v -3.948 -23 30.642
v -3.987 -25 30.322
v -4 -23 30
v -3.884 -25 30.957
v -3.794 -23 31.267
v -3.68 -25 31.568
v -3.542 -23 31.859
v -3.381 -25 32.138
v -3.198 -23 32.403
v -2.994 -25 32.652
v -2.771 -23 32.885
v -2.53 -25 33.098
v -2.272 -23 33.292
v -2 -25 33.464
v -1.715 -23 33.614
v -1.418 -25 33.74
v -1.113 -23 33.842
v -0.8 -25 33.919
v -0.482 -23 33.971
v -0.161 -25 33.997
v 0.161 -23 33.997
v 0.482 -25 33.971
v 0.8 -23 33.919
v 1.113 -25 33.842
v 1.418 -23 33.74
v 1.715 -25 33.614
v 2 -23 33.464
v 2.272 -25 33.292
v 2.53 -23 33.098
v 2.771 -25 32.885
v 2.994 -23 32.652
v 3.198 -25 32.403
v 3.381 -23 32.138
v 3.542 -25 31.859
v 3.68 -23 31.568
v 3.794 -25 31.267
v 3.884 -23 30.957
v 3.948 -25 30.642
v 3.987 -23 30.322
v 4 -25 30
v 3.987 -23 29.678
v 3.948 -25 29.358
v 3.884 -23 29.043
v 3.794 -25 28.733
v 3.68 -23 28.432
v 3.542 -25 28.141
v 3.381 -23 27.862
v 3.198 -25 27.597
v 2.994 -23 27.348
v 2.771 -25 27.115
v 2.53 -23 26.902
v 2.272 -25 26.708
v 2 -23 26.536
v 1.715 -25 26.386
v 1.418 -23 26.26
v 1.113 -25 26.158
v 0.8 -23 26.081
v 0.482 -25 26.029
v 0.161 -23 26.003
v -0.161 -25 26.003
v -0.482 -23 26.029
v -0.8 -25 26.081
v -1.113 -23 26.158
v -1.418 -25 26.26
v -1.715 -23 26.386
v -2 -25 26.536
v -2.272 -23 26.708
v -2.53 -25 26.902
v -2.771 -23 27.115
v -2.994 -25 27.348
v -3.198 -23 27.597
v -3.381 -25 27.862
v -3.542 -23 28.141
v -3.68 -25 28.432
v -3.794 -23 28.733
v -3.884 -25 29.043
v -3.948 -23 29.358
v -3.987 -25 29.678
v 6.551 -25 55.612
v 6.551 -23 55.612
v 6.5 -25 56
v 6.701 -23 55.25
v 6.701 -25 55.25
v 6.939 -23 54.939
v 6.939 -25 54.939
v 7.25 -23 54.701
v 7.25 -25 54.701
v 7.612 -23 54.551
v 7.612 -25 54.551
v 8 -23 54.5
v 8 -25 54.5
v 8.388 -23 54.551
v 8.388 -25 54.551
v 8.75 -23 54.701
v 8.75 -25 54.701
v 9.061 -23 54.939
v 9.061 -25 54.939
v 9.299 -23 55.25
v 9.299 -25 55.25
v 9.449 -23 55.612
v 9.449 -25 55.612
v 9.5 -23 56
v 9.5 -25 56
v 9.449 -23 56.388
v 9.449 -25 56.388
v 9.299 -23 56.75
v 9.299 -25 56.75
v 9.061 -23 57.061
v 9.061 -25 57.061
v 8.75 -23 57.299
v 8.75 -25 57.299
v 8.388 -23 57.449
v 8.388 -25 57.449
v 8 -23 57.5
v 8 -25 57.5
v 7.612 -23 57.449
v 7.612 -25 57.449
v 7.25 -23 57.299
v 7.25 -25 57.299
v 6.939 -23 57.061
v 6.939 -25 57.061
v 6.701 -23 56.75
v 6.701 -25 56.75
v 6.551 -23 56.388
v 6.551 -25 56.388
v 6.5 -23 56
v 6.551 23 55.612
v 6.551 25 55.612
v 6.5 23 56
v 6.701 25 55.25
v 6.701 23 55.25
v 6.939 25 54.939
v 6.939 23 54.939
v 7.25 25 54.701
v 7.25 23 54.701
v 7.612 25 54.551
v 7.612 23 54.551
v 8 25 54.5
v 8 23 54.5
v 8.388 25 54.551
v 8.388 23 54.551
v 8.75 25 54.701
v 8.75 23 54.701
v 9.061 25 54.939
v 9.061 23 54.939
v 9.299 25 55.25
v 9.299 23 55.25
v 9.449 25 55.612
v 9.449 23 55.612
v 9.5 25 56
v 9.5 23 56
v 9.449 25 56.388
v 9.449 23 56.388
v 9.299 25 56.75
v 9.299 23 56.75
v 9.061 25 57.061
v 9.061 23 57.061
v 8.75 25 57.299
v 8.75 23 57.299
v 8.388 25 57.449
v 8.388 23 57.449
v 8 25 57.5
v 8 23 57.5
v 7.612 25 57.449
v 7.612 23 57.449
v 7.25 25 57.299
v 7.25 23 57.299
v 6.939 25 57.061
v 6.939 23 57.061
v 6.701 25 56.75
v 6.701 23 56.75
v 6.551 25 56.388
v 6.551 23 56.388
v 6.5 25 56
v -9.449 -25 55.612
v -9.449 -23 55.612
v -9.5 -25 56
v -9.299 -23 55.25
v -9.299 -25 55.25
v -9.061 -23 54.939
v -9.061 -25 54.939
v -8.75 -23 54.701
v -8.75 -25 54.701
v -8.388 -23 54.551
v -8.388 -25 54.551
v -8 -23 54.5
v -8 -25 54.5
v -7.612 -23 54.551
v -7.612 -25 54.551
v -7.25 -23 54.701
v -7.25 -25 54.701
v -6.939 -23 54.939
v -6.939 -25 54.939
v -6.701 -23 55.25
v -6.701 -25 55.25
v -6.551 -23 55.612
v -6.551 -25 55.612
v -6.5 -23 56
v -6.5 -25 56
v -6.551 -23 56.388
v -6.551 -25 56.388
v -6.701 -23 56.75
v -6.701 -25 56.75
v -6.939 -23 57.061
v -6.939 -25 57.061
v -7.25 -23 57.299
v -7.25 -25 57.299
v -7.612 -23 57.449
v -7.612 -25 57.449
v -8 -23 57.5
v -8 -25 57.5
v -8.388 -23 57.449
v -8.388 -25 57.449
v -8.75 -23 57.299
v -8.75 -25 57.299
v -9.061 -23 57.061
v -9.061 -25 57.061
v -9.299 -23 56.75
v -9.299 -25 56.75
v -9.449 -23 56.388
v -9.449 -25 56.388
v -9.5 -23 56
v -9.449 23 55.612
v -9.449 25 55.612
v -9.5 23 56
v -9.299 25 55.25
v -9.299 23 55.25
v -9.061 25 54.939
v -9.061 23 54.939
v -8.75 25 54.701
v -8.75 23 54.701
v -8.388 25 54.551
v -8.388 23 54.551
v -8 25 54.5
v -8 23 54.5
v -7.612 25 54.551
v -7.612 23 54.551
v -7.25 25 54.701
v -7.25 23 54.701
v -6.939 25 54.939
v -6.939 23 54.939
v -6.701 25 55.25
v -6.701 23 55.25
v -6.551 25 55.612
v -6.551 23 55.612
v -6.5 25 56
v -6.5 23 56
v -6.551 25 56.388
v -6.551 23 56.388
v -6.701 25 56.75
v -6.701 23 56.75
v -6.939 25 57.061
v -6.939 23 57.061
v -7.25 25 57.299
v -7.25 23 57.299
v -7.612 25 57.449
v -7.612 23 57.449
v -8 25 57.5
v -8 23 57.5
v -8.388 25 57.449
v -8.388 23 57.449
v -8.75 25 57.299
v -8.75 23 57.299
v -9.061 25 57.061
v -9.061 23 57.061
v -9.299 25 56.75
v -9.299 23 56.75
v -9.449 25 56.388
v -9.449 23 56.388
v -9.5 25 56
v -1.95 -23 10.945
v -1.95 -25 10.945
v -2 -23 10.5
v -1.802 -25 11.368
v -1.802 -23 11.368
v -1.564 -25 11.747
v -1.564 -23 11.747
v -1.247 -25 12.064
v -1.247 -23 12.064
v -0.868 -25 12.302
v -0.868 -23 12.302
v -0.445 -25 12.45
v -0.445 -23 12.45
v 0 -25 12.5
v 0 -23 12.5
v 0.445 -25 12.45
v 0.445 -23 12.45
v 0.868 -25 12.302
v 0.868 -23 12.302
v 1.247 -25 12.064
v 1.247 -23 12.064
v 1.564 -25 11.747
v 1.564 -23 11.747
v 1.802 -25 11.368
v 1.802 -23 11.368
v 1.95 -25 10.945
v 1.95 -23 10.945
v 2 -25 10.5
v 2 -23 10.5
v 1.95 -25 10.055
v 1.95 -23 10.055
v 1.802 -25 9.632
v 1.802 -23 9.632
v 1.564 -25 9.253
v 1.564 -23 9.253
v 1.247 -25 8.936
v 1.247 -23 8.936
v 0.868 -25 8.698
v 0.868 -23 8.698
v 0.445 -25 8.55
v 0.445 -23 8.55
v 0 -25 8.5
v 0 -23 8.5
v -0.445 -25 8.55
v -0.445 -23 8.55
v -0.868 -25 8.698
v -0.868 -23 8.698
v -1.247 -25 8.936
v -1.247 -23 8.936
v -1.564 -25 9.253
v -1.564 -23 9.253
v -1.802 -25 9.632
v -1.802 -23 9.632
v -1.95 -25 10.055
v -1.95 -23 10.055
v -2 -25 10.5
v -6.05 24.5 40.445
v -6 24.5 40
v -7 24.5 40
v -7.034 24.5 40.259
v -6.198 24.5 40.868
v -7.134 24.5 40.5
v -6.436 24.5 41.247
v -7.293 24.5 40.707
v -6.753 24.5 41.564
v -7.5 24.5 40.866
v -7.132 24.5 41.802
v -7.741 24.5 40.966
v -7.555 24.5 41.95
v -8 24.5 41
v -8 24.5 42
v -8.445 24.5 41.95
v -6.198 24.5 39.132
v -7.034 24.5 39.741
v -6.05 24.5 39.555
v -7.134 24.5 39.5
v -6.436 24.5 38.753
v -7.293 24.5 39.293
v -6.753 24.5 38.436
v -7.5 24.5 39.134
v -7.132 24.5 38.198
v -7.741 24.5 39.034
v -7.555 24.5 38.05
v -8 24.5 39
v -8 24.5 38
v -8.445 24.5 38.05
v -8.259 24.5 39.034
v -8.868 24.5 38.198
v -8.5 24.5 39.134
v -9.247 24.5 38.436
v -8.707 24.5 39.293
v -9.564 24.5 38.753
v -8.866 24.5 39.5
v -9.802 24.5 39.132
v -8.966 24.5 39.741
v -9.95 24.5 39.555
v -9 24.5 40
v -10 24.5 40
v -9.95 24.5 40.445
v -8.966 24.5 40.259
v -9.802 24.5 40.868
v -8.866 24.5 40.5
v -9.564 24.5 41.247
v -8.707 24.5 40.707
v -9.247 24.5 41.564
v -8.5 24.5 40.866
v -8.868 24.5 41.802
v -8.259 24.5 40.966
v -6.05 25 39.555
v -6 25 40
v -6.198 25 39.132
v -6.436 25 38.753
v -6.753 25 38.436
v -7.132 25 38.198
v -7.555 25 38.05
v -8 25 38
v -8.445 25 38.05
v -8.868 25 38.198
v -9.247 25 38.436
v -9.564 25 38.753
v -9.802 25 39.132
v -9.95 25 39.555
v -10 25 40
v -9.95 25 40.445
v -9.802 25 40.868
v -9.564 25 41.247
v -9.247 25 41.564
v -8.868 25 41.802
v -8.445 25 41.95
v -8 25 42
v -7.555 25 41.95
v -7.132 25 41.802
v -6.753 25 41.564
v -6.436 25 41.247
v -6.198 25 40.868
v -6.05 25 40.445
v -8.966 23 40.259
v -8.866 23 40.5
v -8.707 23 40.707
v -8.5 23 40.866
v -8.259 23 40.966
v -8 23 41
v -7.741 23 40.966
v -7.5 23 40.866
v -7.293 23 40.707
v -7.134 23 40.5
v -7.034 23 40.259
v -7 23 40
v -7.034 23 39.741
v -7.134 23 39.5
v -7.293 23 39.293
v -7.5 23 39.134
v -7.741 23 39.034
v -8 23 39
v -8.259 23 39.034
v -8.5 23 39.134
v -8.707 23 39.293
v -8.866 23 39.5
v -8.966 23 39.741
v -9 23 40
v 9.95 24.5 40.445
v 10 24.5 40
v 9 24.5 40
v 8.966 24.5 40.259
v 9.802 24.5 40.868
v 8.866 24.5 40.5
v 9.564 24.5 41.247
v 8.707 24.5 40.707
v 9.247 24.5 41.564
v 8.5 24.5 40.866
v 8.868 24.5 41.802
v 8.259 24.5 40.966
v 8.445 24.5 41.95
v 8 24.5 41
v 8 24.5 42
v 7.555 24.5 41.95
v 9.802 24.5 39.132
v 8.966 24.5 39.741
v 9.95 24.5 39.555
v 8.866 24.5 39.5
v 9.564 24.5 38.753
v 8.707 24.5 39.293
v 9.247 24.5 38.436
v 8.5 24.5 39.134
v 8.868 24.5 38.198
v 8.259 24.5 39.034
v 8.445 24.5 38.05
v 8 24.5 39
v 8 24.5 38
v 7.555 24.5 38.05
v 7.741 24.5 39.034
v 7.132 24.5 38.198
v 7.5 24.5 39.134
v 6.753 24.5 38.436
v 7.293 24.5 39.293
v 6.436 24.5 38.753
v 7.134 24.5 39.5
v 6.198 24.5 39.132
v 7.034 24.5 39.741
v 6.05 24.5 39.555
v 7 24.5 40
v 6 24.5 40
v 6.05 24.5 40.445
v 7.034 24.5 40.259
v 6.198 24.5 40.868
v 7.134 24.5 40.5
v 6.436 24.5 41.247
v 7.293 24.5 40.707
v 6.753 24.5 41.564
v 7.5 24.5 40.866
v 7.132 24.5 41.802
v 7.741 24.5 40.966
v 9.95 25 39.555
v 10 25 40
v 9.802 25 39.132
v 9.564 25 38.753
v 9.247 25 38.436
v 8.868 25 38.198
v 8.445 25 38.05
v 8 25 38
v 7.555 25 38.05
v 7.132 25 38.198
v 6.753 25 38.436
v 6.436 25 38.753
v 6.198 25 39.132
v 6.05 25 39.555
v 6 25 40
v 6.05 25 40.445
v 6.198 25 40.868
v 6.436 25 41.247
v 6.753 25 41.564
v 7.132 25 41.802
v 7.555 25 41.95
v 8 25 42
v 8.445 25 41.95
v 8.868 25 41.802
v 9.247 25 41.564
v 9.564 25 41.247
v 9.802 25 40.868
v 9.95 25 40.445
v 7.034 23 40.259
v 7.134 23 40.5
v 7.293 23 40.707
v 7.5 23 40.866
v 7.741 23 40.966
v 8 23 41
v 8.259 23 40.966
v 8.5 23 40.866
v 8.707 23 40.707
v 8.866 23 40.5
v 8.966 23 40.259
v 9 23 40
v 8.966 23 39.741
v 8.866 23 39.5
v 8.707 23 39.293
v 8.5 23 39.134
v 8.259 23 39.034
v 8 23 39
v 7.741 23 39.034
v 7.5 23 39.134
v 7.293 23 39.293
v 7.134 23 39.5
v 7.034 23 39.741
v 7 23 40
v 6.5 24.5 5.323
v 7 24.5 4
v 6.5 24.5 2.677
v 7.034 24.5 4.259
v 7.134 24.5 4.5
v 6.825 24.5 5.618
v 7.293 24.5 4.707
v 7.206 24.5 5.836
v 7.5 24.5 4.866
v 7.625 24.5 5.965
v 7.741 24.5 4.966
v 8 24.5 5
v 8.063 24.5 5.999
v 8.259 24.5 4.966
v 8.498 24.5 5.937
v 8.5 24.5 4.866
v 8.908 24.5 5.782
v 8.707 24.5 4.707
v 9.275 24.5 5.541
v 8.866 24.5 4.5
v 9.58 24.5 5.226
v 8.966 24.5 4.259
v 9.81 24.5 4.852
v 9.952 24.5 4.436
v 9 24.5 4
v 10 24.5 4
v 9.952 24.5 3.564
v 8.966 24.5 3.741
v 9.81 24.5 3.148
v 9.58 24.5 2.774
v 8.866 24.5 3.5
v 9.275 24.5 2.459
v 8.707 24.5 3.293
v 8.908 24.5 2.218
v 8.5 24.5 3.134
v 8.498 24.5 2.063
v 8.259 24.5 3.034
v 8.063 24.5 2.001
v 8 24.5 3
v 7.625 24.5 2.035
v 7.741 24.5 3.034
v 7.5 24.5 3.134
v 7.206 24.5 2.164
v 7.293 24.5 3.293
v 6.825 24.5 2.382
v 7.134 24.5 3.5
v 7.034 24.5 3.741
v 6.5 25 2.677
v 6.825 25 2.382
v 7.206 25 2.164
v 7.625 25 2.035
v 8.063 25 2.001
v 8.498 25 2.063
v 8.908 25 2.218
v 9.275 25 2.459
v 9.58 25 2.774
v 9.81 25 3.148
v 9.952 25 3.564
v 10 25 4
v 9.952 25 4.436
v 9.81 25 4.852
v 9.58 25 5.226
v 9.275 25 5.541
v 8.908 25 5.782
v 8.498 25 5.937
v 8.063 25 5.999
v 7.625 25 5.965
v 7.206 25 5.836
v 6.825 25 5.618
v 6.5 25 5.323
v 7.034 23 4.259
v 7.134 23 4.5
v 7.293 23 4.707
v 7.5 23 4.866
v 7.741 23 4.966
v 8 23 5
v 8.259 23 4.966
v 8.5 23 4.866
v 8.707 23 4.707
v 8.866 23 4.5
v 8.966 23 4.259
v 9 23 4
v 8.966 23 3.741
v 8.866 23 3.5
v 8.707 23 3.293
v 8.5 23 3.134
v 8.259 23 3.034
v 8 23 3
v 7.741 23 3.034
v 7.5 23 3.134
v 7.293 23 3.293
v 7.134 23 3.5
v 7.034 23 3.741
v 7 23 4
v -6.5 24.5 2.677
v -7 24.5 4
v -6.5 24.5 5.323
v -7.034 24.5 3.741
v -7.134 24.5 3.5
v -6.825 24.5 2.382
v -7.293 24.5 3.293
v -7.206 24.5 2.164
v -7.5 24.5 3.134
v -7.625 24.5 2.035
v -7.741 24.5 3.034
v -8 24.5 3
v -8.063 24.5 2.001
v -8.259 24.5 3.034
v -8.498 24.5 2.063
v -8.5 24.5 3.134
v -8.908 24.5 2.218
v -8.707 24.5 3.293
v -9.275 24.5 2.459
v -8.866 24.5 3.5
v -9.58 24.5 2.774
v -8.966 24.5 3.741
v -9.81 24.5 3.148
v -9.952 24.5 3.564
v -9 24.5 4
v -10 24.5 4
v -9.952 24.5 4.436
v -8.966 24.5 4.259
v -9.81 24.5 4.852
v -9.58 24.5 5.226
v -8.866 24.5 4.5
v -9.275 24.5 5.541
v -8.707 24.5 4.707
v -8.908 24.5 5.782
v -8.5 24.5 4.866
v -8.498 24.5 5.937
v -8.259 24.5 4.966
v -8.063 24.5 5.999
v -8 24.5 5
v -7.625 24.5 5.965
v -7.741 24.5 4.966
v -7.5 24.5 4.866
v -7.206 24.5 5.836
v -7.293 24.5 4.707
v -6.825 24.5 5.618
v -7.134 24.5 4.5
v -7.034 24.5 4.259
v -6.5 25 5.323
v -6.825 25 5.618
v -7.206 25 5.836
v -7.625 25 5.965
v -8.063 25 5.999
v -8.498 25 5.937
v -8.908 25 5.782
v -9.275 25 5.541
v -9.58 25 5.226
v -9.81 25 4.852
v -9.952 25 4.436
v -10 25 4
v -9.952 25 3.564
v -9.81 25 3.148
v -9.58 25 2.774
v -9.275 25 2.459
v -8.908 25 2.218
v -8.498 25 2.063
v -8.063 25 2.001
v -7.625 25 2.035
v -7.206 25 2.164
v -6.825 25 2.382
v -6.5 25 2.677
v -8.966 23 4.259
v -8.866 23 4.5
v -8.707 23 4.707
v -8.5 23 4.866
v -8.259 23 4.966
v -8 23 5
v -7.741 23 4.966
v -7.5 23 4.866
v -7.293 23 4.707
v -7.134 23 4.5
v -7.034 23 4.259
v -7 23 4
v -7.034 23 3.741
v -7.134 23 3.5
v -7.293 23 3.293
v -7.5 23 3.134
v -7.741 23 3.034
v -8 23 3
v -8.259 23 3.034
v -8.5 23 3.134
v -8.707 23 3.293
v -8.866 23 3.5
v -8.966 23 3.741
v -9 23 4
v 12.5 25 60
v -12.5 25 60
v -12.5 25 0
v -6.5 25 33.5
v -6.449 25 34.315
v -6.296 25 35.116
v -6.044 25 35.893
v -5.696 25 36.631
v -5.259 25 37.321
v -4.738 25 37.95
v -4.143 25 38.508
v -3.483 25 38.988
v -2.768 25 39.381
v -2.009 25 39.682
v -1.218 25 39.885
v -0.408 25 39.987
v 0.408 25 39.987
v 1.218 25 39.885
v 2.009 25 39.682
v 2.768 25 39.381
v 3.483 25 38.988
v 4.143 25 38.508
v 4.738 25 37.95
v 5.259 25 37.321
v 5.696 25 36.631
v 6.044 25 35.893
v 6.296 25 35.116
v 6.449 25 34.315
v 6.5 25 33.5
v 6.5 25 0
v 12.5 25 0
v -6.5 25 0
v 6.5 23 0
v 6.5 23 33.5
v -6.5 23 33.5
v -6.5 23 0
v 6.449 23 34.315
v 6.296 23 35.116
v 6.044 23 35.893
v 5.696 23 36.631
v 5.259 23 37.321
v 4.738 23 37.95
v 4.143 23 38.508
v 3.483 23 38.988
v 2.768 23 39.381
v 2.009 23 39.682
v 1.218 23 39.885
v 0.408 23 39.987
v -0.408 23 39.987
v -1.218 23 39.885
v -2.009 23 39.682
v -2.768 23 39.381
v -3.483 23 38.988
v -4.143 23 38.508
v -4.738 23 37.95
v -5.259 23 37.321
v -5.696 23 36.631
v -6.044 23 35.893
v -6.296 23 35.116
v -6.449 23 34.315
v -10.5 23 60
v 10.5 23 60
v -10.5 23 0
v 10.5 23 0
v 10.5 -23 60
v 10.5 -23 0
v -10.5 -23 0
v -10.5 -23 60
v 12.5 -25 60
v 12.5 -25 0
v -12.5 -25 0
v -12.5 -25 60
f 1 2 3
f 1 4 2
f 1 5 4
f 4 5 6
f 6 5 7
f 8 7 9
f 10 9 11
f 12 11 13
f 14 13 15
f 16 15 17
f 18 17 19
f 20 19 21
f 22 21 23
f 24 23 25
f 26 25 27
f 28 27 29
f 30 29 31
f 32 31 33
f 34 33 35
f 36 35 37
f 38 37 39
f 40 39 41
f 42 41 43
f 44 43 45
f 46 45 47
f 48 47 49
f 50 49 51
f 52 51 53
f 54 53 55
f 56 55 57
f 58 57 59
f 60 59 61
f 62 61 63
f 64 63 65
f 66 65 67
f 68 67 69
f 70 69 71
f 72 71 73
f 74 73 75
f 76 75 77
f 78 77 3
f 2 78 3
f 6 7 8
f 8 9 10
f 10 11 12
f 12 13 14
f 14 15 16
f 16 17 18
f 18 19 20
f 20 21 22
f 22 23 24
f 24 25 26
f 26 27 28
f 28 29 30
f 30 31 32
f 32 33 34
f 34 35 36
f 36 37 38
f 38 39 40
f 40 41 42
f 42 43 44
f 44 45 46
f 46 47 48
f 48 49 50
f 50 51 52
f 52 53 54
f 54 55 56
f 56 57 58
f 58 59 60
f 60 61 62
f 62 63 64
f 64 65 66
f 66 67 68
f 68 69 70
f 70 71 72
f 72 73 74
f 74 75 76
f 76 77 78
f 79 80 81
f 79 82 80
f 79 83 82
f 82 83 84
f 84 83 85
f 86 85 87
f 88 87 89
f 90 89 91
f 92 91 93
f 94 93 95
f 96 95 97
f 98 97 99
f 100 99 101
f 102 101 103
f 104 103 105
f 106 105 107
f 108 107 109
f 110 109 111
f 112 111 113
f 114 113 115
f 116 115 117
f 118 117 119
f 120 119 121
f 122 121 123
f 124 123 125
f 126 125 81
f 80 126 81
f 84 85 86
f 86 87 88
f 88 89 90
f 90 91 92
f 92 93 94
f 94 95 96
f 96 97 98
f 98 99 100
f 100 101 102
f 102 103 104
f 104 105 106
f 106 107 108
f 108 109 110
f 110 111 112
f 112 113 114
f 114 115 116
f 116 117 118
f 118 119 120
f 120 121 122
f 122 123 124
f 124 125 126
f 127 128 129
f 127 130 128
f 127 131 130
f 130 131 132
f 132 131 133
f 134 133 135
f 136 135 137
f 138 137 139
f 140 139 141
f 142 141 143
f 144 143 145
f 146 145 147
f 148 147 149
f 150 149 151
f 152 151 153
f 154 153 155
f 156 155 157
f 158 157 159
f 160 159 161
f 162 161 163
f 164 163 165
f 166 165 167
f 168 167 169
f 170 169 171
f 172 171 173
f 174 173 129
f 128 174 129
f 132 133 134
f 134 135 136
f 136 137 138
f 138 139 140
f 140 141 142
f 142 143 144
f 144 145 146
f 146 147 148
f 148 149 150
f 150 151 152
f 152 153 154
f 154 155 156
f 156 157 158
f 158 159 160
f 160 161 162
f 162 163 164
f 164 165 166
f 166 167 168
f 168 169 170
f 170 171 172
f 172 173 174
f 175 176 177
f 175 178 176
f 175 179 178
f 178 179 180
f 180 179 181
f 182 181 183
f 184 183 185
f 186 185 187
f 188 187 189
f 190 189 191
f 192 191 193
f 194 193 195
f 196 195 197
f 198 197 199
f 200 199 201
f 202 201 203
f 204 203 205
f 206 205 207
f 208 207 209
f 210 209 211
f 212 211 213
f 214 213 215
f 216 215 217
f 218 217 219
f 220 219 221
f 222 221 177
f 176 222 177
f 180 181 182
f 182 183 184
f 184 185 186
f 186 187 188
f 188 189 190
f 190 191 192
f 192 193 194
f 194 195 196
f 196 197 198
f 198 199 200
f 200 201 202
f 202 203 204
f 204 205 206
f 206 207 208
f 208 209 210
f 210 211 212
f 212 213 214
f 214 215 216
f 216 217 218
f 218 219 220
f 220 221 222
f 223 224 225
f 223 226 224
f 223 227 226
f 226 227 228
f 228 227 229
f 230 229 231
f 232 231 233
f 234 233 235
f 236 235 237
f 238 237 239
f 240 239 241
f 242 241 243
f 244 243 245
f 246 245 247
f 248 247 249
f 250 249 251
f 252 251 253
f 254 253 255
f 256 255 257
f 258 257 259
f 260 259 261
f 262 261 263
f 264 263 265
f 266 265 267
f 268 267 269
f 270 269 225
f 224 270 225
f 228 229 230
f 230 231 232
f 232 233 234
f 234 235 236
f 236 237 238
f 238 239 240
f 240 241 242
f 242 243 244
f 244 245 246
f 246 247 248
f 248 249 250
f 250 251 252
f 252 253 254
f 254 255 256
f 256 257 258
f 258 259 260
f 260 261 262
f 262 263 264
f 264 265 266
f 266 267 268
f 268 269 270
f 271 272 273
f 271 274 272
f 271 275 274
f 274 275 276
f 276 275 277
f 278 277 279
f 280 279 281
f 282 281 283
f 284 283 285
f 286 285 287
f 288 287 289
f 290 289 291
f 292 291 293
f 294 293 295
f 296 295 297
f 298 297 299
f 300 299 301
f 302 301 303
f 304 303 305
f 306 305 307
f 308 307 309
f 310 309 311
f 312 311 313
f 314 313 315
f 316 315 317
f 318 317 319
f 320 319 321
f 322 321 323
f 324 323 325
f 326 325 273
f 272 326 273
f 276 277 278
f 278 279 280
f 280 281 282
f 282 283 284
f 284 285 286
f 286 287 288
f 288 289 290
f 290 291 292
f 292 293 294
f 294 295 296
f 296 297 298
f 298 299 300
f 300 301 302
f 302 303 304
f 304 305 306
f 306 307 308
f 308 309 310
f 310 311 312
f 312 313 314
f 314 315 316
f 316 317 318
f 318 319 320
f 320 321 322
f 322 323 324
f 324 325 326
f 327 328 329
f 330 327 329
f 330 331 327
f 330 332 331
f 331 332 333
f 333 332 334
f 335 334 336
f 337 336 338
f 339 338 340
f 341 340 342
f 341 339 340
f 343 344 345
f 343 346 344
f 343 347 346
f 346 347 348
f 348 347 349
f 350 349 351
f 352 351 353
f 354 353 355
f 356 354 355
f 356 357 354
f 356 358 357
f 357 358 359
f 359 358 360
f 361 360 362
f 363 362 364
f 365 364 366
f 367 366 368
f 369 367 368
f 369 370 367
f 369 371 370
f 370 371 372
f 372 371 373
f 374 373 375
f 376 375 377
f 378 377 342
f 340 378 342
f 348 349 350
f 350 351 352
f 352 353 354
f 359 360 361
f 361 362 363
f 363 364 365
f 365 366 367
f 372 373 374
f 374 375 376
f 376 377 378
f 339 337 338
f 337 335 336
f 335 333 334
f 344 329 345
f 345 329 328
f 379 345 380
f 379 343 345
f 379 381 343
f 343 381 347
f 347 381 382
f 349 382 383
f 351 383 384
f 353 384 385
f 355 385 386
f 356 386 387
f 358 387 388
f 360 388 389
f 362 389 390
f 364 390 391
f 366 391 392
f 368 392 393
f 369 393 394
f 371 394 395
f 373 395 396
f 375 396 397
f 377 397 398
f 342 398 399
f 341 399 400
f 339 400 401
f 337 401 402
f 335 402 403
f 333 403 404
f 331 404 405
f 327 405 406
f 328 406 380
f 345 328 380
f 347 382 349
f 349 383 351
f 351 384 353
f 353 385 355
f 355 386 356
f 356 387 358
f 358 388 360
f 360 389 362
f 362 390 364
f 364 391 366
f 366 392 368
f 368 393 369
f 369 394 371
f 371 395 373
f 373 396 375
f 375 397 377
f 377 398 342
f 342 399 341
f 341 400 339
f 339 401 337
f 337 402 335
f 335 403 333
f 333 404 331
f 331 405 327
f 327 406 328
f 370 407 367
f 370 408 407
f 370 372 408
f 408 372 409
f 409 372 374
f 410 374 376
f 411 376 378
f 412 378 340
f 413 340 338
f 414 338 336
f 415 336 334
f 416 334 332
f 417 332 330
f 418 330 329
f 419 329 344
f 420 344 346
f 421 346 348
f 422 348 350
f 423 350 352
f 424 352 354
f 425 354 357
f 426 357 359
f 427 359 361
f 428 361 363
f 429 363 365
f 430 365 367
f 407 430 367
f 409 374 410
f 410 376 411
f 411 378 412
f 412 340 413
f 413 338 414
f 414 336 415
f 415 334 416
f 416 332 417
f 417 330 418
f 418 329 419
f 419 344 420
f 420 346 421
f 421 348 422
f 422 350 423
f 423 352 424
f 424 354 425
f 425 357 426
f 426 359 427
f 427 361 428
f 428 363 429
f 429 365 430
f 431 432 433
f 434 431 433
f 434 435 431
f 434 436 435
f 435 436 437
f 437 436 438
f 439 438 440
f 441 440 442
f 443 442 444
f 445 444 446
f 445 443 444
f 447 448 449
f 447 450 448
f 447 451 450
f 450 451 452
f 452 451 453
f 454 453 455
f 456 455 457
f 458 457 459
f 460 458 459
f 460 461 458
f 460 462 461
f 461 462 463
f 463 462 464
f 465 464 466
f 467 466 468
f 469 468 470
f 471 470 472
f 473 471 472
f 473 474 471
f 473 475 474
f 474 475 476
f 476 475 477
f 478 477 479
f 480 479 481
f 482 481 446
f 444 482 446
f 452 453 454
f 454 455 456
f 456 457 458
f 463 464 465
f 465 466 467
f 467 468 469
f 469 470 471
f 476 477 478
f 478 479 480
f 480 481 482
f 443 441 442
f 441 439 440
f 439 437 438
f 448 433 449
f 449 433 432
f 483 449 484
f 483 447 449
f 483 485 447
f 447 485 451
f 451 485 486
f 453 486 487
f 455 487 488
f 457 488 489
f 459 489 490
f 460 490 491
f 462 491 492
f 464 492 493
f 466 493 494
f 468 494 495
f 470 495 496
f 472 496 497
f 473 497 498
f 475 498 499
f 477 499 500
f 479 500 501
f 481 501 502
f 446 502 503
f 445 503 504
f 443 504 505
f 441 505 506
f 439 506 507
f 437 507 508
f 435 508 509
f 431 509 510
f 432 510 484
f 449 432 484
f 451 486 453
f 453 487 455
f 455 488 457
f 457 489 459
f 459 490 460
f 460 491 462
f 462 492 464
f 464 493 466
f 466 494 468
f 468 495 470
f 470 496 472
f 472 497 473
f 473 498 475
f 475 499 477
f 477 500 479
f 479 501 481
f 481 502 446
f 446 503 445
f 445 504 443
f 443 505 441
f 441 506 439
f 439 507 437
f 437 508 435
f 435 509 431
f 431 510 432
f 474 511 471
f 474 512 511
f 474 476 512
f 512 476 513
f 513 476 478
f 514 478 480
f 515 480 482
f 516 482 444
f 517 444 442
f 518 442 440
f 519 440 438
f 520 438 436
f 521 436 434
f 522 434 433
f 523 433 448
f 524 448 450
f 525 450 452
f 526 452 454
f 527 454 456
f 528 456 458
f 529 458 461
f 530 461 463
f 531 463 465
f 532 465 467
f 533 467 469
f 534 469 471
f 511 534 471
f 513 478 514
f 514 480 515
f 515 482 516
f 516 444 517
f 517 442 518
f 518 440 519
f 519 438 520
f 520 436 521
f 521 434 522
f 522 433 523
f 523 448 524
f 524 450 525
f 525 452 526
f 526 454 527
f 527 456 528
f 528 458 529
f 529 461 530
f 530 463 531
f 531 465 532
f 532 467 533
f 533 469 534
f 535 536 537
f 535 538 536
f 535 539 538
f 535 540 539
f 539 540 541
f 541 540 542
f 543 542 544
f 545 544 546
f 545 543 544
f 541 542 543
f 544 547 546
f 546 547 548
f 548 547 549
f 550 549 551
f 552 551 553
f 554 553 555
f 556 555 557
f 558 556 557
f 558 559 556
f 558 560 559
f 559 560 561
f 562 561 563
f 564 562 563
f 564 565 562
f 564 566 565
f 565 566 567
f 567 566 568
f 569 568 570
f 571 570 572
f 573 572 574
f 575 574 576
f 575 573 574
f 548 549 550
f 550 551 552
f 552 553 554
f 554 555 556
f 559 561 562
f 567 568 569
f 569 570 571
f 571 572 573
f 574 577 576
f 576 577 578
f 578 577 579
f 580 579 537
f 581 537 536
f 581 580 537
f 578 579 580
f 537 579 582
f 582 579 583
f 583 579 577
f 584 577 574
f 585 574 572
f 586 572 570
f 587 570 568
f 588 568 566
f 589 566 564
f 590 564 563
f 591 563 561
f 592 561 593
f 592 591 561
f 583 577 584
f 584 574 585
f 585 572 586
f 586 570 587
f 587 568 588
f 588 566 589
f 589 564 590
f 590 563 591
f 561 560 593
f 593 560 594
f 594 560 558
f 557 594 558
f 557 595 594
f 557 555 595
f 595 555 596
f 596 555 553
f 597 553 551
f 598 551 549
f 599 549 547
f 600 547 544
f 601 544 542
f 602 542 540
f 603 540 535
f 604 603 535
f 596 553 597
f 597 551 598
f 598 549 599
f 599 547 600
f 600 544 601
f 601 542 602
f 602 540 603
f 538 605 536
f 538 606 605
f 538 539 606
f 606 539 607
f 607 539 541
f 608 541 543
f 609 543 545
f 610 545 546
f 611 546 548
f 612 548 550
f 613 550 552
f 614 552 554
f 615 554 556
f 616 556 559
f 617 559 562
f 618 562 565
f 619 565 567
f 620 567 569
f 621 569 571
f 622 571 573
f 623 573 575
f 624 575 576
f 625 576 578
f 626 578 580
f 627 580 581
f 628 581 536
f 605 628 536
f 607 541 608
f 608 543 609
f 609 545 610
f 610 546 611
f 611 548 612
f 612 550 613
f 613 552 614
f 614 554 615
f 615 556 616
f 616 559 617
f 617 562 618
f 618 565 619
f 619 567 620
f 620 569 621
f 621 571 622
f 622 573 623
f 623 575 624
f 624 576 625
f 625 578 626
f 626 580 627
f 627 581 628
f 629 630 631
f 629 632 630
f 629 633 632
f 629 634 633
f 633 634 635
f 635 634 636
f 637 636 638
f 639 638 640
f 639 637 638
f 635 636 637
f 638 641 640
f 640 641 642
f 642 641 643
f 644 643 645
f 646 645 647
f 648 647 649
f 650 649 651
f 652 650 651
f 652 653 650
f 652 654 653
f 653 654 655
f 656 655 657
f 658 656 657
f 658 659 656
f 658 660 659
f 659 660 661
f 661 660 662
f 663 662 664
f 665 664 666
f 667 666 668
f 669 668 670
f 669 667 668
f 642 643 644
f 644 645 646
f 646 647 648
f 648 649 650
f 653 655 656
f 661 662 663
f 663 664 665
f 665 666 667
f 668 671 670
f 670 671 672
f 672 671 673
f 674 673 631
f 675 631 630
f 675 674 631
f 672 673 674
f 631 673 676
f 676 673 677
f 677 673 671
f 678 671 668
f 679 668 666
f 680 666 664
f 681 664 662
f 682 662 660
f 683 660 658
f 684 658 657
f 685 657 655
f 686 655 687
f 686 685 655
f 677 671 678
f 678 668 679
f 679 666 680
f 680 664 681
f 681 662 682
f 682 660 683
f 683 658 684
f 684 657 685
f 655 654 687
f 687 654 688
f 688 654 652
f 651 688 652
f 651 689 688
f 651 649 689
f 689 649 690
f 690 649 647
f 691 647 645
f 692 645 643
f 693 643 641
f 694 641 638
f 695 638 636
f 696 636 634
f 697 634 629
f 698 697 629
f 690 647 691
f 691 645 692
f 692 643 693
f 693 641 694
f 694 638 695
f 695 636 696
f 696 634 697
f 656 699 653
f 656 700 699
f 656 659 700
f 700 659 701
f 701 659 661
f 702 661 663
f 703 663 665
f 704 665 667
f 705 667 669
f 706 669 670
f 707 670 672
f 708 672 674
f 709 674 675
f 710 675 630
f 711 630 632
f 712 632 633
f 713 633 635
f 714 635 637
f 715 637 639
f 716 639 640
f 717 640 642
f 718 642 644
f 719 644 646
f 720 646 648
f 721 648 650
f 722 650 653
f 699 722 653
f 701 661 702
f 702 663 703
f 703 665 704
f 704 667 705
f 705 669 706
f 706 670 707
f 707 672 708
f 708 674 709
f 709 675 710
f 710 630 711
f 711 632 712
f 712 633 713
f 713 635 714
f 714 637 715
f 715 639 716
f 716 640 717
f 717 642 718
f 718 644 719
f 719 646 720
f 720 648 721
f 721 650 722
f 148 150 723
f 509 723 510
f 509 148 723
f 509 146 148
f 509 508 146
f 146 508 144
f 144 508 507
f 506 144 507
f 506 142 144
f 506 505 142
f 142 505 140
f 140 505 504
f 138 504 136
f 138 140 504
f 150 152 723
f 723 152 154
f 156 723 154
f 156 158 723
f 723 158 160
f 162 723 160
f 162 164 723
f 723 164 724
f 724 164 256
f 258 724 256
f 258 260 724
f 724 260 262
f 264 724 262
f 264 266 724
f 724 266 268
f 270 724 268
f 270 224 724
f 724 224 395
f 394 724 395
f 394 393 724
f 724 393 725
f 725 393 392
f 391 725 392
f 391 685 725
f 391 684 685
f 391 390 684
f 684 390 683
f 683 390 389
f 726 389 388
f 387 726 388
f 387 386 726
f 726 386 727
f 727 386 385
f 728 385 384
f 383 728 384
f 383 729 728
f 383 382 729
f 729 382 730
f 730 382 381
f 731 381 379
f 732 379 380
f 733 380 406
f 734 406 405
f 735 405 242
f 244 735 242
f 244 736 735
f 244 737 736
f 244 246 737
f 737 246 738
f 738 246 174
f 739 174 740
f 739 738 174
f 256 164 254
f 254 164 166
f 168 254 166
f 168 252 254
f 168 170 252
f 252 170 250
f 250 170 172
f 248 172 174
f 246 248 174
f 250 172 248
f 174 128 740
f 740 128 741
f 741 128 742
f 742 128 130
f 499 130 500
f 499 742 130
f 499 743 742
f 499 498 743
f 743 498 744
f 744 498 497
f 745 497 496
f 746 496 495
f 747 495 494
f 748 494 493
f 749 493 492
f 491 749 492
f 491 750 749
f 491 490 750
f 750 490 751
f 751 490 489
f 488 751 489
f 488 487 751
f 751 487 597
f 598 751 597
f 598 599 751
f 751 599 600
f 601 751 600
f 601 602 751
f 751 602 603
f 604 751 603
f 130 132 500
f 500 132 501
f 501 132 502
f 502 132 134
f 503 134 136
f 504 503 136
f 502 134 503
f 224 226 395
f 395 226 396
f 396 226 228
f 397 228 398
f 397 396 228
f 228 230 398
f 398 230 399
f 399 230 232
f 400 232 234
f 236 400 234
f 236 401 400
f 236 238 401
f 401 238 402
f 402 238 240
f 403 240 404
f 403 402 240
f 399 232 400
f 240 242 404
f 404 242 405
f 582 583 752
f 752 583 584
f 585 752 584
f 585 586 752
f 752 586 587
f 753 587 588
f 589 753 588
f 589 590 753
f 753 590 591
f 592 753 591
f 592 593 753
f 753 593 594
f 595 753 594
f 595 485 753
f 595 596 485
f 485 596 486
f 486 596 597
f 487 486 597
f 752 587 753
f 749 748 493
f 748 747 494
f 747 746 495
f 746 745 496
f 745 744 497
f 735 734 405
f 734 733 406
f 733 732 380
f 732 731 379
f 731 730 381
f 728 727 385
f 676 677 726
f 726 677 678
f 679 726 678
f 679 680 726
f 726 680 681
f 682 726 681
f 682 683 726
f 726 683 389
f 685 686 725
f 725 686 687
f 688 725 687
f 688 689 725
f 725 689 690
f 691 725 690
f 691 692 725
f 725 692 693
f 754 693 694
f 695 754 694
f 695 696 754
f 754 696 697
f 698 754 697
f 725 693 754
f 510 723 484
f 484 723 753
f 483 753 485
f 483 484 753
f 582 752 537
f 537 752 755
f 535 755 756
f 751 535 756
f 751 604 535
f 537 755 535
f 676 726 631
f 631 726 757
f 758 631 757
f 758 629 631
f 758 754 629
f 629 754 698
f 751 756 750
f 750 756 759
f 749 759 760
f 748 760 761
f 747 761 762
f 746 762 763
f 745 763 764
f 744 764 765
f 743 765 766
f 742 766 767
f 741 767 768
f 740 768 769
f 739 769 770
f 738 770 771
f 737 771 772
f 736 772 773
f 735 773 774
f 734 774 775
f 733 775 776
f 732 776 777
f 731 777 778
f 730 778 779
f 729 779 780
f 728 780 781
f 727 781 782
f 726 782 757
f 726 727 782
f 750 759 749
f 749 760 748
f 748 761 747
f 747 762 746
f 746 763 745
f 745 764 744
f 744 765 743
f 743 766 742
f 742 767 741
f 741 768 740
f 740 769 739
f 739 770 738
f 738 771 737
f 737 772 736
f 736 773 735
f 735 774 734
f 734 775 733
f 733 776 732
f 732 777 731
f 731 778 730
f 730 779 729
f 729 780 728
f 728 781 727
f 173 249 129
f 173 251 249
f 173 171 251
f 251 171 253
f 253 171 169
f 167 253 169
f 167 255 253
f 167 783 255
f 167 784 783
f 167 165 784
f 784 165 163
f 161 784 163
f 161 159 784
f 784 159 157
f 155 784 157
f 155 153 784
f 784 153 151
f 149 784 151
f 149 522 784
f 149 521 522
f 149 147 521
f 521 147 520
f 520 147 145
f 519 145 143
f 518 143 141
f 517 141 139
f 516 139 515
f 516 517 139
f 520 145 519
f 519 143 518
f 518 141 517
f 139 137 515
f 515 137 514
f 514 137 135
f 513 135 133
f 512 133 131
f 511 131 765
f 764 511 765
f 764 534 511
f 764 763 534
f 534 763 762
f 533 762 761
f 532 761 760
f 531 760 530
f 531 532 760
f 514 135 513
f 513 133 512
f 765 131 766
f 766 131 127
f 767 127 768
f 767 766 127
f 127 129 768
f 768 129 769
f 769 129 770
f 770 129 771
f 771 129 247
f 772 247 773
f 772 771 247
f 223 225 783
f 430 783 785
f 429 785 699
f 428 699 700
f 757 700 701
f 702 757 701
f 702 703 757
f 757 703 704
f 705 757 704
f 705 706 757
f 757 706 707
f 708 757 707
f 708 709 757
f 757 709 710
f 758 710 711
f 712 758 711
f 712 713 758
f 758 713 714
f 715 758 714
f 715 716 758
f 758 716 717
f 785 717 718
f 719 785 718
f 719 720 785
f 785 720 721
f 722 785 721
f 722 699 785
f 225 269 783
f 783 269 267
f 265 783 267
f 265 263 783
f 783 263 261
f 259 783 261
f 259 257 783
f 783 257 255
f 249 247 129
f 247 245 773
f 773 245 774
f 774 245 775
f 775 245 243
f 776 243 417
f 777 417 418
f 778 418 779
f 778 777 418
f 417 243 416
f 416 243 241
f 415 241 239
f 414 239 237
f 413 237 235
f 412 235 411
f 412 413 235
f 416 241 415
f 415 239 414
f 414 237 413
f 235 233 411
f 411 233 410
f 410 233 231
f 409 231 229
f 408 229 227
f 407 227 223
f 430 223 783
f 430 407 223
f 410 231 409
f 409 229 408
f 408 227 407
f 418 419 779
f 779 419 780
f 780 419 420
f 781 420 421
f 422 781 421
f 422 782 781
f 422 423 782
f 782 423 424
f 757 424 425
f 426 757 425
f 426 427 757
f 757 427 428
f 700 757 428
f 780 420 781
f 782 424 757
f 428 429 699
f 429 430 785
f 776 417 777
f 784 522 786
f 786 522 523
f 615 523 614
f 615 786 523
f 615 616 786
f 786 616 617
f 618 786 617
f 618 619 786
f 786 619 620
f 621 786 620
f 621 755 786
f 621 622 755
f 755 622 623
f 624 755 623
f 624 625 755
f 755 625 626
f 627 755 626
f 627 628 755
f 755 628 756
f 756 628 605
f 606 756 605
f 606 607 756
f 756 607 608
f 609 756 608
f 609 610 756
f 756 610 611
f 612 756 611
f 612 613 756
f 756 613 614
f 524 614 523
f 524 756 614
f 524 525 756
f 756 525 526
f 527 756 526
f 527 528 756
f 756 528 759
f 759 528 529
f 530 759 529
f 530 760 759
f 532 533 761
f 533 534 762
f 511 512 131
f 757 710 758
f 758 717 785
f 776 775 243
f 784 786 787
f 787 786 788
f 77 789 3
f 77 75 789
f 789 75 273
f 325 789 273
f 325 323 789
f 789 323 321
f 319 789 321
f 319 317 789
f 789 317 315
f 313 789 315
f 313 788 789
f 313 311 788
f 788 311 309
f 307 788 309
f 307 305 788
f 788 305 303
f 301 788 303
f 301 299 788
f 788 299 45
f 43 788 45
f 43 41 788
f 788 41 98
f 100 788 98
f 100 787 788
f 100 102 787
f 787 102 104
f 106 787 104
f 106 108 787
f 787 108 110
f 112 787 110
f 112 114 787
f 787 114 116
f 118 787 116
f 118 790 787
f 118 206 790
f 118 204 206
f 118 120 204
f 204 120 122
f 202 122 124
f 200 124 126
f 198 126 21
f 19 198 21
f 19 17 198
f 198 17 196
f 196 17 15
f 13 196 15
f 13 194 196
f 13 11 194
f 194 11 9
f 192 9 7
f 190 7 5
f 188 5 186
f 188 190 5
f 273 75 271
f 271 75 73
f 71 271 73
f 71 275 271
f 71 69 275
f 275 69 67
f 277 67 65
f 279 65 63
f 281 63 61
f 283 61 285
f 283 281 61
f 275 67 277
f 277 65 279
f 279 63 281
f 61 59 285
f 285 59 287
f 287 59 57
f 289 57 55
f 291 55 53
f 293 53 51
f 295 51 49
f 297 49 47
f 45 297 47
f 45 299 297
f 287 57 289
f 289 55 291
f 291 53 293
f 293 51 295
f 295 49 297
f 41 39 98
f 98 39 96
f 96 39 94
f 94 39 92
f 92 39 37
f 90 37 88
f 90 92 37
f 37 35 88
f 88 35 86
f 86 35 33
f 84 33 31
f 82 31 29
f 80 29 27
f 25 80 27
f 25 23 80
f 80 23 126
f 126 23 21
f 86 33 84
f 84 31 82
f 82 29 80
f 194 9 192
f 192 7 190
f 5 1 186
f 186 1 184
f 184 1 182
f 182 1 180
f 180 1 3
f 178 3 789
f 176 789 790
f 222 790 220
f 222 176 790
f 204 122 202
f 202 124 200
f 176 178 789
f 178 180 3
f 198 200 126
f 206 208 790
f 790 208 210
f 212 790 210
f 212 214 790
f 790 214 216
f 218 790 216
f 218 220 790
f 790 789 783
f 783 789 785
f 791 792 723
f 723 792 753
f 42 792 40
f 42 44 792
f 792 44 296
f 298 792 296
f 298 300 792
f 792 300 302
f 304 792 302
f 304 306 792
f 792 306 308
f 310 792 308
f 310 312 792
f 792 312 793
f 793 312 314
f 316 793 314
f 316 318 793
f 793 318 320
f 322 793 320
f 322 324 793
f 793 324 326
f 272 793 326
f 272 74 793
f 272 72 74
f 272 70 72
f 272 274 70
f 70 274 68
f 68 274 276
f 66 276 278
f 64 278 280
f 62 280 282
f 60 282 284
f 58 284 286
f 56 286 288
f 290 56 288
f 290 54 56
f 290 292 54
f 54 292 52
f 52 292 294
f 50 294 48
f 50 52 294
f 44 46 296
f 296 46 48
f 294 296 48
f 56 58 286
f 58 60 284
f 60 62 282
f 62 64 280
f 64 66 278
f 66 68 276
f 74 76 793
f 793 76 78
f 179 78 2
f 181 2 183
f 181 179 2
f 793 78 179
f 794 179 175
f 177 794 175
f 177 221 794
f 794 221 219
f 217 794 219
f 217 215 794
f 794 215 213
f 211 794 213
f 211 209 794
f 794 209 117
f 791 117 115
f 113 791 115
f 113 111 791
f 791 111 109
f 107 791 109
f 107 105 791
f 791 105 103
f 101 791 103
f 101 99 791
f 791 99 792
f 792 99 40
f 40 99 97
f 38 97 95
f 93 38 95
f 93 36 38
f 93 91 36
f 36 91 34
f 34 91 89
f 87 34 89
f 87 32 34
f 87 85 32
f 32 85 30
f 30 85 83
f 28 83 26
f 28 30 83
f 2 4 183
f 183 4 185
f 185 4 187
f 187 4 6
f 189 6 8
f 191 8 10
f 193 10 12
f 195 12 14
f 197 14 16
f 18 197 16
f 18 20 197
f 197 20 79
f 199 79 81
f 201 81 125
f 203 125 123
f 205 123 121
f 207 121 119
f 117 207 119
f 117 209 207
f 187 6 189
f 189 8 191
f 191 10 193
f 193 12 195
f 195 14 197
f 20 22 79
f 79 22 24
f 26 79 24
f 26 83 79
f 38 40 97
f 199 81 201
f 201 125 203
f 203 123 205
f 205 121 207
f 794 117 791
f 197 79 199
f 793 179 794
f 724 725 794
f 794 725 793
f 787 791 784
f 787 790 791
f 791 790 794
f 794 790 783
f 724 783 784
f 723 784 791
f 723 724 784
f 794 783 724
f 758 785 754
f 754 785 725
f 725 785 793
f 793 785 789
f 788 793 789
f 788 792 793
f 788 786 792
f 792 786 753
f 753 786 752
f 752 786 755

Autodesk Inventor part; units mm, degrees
ref_plane "YZ Plane" through (0, 0, 0) normal (1, 0, 0) x (0, 1, 0)
ref_plane "XZ Plane" through (0, 0, 0) normal (0, 1, 0) x (-1, 0, 0)
ref_plane "XY Plane" through (0, 0, 0) normal (0, 0, 1) x (1, 0, 0)
sketch "スケッチ1" plane through (0, 0, 0) normal (0, 0, 1) x (1, 0, 0)
  line L0 (-12.5, 25) -> (12.5, 25)
  line L1 (12.5, 25) -> (12.5, -25)
  line L2 (12.5, -25) -> (-12.5, -25)
  line L3 (-12.5, -25) -> (-12.5, 25)
  line L4 (-10.5, 23) -> (10.5, 23)
  line L5 (10.5, 23) -> (10.5, -23)
  line L6 (10.5, -23) -> (-10.5, -23)
  line L7 (-10.5, -23) -> (-10.5, 23)
  point P0 (0, 0)
  dimension "d0" = 25
  dimension "d1" = 50
  dimension "d2" = 46
  dimension "d3" = 21
  dimension "d4" = 25
  dimension "d5" = 23
  dimension "d6" = 10.5
  dimension "d7" = 12.5
extrude "押し出し1" add sketch "スケッチ1" along normal blind 60
sketch "スケッチ2" plane through (-12.5, 25, 0) normal (0, 1, 0) x (1, 0, 0)
  line L0 (0, 0) -> (25, 0) projected
  line L1 (0, 0) -> (0, -60) projected
  arc A0 (6, -33.5) -> (19, -33.5) centre (12.5, -33.5) ccw
  line L2 (6, -33.5) -> (6, 0)
  line L3 (19, -33.5) -> (19, 0)
  point P0 (12.5, 0)
  dimension "d10" = 13
  dimension "d11" = 33.5
  dimension "d12" = 12.5
extrude "押し出し2" cut sketch "スケッチ2" against normal blind 2
sketch "スケッチ3" plane through (-12.5, 25, 60) normal (0, 1, 0) x (1, 0, 0)
  arc A0 (6, 26.5) -> (19, 26.5) centre (12.5, 26.5) ccw projected
  circle A1 centre (4.5, 20) radius 1
  circle A2 centre (4.5, 56) radius 1
  circle A3 centre (20.5, 56) radius 1
  circle A4 centre (20.5, 20) radius 1
  point P0 (12.5, 60)
  dimension "d15" = 6.5
  dimension "d16" = 6.5
  dimension "d17" = 2
  dimension "d18" = 8
  dimension "d19" = 8
  dimension "d20" = 8
  dimension "d21" = 8
  dimension "d22" = 29.5
  dimension "d23" = 29.5
hole "穴1" at (-8, 25, 4) at (8, 25, 4) at (8, 25, 40) at (-8, 25, 40) direction (0, -1, 0) diameter 2 depth 2 tip angle 118 counterbore diameter 4 counterbore depth 0.5
sketch "スケッチ4" plane through (-12.5, -25, 0) normal (0, -1, 0) x (1, 0, 0)
  line L0 (25, 0) -> (0, 0) projected
  line L1 (25, 0) -> (25, 60) projected
  circle A0 centre (12.5, 10.5) radius 2
  point P0 (12.5, 0)
  dimension "d31" = 4
  dimension "d32" = 12.5
  dimension "d33" = 10.5
hole "穴2" at (0, -25, 10.5) direction (0, 1, 0) diameter 4 end through all
sketch "スケッチ5" plane through (-12.5, 25, 60) normal (0, 1, 0) x (1, 0, 0)
  line L0 (0, 0) -> (25, 0) projected
  arc A0 (6, 26.5) -> (19, 26.5) centre (12.5, 26.5) ccw projected
  circle A1 centre (20.5, 4) radius 1.5
  circle A2 centre (4.5, 4) radius 1.5
  point P0 (12.5, 60)
  dimension "d43" = 4
  dimension "d44" = 4
  dimension "d46" = 8
  dimension "d47" = 8
  dimension "d57" = 3
hole "穴4" at (-8, 25, 56) at (8, 25, 56) direction (0, -1, 0) diameter 3 end through all
thread "ねじ1" size "M3x0.5" class "6H" standard "ANSI Metric M Profile" full length
thread "ねじ2" size "M3x0.5" class "6H" standard "ANSI Metric M Profile" full length
thread "ねじ3" size "M3x0.5" class "6H" standard "ANSI Metric M Profile" full length
thread "ねじ4" size "M3x0.5" class "6H" standard "ANSI Metric M Profile" full length
sketch "スケッチ7" plane through (-12.5, -25, 0) normal (0, -1, 0) x (1, 0, 0)
  line L0 (25, 60) -> (0, 60) projected
  line L1 (25, 0) -> (25, 60) projected
  circle A0 centre (12.5, 30) radius 4
  point P0 (12.5, 0)
  dimension "d78" = 30
  dimension "d79" = 8
  dimension "d80" = 12.5
hole "穴5" at (0, -25, 30) direction (0, 1, 0) diameter 8 end through all
properties part number "07" material "アルミニウム 6061"
